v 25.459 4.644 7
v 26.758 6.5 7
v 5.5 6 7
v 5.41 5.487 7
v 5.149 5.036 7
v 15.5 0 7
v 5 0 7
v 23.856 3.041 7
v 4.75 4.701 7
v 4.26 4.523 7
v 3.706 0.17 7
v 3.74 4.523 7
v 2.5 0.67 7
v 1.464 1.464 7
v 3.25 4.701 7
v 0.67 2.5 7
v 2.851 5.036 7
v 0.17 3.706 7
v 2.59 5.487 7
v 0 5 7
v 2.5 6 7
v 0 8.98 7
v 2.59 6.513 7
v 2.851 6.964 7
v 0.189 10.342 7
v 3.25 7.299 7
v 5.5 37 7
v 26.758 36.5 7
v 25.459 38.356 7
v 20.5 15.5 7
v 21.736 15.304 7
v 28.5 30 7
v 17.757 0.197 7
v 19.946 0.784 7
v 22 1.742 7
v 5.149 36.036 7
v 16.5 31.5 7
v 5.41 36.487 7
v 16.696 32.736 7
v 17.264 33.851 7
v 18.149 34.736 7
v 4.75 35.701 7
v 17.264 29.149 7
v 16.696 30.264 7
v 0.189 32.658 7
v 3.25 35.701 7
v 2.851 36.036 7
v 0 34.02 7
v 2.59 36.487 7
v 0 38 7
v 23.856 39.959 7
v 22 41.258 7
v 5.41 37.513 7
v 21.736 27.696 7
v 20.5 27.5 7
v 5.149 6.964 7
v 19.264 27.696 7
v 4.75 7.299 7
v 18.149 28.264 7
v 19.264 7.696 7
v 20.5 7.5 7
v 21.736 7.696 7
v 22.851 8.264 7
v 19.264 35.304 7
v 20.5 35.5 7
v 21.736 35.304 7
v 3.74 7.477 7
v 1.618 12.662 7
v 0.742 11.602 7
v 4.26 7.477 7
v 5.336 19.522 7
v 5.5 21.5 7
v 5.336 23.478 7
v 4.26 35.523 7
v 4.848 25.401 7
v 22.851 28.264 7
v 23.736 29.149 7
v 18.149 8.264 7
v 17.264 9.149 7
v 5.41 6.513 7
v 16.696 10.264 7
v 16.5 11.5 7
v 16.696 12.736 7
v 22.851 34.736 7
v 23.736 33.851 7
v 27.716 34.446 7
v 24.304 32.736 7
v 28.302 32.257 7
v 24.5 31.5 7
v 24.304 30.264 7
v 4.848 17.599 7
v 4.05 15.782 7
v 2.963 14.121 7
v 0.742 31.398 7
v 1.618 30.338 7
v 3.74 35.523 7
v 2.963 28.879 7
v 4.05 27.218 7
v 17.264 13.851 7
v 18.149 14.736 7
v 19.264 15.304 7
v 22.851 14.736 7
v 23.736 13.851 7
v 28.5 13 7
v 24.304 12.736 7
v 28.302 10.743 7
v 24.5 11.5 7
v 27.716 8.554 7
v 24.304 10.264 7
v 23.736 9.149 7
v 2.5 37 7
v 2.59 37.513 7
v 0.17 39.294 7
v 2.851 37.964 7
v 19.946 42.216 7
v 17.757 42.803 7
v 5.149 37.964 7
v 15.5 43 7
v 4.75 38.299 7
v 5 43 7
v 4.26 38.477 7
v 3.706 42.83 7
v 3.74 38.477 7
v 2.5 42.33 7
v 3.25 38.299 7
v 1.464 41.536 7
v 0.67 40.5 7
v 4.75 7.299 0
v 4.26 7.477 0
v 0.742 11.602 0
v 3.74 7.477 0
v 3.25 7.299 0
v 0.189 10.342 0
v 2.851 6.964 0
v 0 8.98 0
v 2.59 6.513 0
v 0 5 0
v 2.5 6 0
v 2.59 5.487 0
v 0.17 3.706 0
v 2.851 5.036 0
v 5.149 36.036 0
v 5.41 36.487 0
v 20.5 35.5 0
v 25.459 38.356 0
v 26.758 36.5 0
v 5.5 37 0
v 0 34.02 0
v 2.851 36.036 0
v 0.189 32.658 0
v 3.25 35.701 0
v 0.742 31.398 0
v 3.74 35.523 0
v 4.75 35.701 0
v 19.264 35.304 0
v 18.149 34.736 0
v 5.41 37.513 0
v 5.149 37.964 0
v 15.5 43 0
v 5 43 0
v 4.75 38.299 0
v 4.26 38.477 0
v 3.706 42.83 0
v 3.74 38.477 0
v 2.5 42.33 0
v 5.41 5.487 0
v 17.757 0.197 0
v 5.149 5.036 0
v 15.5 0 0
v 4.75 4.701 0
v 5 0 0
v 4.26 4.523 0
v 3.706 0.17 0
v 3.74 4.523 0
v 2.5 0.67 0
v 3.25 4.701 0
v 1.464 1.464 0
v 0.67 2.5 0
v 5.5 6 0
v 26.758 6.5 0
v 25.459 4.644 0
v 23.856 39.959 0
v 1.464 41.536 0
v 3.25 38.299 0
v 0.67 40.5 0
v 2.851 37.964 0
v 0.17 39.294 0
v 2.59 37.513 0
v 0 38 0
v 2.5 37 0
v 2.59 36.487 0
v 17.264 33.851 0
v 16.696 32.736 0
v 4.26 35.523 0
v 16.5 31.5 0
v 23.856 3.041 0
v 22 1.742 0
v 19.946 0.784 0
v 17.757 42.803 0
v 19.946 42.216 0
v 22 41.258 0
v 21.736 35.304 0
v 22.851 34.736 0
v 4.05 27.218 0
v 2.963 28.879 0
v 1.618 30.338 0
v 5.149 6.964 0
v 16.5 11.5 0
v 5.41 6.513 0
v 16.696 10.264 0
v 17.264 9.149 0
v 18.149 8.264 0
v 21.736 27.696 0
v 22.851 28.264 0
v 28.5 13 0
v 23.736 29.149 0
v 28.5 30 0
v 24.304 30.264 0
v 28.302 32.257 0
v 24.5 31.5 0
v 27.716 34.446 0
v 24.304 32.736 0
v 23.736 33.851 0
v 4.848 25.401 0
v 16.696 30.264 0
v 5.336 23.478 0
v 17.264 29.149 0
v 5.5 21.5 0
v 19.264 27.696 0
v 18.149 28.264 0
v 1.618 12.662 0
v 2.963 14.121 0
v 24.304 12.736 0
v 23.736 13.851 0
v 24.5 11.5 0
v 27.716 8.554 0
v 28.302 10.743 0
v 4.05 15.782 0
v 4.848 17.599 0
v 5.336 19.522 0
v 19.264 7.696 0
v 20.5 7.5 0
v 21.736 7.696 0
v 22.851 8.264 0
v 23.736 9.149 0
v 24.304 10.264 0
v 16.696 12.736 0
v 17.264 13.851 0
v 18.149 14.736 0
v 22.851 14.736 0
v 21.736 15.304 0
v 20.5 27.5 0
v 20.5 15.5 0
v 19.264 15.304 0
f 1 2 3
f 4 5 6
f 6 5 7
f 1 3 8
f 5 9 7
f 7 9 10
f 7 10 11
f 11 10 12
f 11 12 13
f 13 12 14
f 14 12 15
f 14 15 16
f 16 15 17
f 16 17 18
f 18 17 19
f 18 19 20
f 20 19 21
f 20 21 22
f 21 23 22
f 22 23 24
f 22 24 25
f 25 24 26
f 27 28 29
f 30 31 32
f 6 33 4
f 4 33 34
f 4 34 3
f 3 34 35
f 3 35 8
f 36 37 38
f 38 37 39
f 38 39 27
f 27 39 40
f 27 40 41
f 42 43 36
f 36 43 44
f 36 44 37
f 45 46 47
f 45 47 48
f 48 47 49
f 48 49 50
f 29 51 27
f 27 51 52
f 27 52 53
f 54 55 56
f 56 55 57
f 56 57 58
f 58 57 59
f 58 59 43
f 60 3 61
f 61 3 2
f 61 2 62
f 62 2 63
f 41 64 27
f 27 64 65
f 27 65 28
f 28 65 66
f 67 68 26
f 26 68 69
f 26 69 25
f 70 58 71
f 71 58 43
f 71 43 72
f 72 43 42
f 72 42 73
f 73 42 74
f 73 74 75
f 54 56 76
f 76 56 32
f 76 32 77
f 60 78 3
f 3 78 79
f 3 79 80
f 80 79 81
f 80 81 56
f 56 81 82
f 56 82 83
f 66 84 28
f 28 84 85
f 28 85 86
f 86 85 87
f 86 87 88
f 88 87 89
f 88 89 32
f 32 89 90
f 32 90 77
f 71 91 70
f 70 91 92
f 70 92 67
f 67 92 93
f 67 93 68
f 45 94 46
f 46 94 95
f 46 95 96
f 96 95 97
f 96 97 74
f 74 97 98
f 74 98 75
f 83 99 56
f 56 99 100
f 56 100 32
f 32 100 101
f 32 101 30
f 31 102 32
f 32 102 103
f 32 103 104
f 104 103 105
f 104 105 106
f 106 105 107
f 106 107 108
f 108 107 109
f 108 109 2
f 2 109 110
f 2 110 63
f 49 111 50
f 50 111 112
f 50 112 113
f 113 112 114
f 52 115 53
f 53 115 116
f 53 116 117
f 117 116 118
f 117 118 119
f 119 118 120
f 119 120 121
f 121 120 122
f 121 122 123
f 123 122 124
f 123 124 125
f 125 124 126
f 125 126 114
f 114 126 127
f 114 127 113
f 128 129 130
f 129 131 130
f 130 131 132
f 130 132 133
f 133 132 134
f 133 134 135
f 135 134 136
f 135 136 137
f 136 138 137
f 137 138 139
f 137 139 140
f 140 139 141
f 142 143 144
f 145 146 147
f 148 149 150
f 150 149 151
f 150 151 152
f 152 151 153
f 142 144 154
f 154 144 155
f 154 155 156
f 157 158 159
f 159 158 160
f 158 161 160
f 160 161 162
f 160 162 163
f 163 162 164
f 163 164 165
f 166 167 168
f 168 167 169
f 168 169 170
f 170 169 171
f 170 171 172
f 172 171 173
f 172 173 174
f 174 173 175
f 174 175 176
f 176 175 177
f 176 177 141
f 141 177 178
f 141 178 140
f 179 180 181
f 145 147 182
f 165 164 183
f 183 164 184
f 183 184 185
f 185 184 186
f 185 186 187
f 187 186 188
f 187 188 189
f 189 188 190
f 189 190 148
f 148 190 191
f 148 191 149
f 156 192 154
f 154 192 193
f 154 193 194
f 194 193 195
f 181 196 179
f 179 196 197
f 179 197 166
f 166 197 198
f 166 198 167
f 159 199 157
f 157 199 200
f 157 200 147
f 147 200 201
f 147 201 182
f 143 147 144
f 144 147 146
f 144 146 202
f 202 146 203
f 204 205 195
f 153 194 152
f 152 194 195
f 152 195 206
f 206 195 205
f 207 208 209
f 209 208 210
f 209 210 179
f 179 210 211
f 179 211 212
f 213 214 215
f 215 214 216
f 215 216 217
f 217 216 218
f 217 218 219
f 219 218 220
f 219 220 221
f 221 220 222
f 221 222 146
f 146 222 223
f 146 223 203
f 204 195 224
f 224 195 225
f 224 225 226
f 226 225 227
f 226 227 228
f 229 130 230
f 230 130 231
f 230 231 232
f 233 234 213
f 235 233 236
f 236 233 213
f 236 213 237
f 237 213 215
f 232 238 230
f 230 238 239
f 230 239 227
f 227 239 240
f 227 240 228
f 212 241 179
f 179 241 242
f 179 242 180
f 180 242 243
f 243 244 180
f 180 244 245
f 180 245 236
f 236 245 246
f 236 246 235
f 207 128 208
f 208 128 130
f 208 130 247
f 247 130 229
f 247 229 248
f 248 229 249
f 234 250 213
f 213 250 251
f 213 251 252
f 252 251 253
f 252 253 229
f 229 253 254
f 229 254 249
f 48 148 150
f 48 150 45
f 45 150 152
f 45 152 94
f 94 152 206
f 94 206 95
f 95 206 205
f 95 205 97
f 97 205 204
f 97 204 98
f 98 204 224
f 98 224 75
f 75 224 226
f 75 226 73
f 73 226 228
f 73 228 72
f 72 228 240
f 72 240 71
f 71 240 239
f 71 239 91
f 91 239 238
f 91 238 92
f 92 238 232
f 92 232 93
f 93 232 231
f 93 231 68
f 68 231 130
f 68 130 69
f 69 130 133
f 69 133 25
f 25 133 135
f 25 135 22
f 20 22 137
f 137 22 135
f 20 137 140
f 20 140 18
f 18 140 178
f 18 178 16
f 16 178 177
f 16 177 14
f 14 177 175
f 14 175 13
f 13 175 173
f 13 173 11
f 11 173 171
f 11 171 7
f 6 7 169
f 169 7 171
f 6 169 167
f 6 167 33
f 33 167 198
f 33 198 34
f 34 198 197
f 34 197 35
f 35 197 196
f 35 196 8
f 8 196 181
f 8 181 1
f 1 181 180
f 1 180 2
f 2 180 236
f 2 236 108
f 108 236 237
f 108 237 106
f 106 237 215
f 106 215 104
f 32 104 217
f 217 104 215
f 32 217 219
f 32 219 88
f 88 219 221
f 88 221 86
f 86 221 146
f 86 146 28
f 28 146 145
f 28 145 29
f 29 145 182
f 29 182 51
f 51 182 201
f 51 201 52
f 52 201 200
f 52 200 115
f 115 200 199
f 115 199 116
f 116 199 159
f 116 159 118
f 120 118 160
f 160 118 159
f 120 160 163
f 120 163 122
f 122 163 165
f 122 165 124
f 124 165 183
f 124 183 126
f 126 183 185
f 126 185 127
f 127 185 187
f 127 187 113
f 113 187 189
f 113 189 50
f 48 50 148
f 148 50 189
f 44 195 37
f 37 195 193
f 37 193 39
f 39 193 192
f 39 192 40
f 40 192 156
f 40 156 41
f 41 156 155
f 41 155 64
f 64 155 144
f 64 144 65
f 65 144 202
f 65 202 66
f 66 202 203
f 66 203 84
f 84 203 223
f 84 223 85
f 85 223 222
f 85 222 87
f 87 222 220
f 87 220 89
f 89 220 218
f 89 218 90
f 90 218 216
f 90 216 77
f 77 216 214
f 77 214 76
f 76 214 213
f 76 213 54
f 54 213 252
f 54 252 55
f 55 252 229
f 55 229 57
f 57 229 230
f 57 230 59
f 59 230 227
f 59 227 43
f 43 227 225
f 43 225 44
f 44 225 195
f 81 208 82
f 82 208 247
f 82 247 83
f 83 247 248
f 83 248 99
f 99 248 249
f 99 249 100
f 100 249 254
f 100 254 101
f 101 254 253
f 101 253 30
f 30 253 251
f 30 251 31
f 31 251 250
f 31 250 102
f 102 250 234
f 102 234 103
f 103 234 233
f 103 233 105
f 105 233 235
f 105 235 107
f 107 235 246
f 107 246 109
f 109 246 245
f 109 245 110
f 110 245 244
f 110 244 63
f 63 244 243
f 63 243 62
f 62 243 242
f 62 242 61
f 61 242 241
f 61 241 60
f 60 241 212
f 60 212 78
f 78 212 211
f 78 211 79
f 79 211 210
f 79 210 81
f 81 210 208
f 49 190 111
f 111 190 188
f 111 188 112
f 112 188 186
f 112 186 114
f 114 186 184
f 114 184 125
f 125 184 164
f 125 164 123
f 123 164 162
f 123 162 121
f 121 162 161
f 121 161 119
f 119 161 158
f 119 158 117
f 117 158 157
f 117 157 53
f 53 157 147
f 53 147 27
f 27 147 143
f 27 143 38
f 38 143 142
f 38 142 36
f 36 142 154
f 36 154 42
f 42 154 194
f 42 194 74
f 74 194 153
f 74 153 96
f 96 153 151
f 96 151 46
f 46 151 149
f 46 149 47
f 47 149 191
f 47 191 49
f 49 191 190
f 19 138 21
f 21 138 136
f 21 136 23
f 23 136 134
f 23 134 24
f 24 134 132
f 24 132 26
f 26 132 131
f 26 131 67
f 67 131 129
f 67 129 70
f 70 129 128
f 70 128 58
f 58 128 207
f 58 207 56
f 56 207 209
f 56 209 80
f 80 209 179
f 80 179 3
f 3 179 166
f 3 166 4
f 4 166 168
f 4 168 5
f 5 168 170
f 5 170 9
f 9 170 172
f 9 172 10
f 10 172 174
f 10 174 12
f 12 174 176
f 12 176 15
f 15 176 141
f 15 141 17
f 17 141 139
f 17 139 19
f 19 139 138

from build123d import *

# Parameters (mm, degrees)
CROQUIS1_R              = 4
CROQUIS1_R_2            = 1.5
SALIENTE_EXTRUIR1_DEPTH = 7


with BuildPart() as part:
    # Croquis1 → Saliente-Extruir1 (new body)
    with BuildSketch(Plane.XY):
        with BuildLine():
            Line((5, 0), (15.5, 0))
            ThreePointArc((15.5, 0), (24.692388155, 3.807611845), (28.5, 13))
            Line((28.5, 13), (28.5, 30))
            ThreePointArc((28.5, 30), (24.692388155, 39.192388155), (15.5, 43))
            Line((15.5, 43), (5, 43))
            ThreePointArc((5, 43), (1.464466094, 41.535533906), (0, 38))
            Line((0, 38), (0, 34.019984026))
            ThreePointArc((0, 34.019984026), (0.422240466, 32.008984859), (1.617647059, 30.337635783))
            ThreePointArc((1.617647059, 30.337635783), (5.5, 21.5), (1.617647059, 12.662364217))
            ThreePointArc((1.617647059, 12.662364217), (0.422240466, 10.991015141), (0, 8.980015974))
            Line((0, 8.980015974), (0, 5))
            ThreePointArc((0, 5), (1.464466094, 1.464466094), (5, 0))
        make_face()
        with Locations((20.5, 31.5)):
            Circle(CROQUIS1_R, mode=Mode.SUBTRACT)
        with Locations((20.5, 11.5)):
            Circle(CROQUIS1_R, mode=Mode.SUBTRACT)
        with Locations((4, 37)):
            Circle(CROQUIS1_R_2, mode=Mode.SUBTRACT)
        with Locations((4, 6)):
            Circle(CROQUIS1_R_2, mode=Mode.SUBTRACT)
    extrude(amount=SALIENTE_EXTRUIR1_DEPTH)


solid = part.part
